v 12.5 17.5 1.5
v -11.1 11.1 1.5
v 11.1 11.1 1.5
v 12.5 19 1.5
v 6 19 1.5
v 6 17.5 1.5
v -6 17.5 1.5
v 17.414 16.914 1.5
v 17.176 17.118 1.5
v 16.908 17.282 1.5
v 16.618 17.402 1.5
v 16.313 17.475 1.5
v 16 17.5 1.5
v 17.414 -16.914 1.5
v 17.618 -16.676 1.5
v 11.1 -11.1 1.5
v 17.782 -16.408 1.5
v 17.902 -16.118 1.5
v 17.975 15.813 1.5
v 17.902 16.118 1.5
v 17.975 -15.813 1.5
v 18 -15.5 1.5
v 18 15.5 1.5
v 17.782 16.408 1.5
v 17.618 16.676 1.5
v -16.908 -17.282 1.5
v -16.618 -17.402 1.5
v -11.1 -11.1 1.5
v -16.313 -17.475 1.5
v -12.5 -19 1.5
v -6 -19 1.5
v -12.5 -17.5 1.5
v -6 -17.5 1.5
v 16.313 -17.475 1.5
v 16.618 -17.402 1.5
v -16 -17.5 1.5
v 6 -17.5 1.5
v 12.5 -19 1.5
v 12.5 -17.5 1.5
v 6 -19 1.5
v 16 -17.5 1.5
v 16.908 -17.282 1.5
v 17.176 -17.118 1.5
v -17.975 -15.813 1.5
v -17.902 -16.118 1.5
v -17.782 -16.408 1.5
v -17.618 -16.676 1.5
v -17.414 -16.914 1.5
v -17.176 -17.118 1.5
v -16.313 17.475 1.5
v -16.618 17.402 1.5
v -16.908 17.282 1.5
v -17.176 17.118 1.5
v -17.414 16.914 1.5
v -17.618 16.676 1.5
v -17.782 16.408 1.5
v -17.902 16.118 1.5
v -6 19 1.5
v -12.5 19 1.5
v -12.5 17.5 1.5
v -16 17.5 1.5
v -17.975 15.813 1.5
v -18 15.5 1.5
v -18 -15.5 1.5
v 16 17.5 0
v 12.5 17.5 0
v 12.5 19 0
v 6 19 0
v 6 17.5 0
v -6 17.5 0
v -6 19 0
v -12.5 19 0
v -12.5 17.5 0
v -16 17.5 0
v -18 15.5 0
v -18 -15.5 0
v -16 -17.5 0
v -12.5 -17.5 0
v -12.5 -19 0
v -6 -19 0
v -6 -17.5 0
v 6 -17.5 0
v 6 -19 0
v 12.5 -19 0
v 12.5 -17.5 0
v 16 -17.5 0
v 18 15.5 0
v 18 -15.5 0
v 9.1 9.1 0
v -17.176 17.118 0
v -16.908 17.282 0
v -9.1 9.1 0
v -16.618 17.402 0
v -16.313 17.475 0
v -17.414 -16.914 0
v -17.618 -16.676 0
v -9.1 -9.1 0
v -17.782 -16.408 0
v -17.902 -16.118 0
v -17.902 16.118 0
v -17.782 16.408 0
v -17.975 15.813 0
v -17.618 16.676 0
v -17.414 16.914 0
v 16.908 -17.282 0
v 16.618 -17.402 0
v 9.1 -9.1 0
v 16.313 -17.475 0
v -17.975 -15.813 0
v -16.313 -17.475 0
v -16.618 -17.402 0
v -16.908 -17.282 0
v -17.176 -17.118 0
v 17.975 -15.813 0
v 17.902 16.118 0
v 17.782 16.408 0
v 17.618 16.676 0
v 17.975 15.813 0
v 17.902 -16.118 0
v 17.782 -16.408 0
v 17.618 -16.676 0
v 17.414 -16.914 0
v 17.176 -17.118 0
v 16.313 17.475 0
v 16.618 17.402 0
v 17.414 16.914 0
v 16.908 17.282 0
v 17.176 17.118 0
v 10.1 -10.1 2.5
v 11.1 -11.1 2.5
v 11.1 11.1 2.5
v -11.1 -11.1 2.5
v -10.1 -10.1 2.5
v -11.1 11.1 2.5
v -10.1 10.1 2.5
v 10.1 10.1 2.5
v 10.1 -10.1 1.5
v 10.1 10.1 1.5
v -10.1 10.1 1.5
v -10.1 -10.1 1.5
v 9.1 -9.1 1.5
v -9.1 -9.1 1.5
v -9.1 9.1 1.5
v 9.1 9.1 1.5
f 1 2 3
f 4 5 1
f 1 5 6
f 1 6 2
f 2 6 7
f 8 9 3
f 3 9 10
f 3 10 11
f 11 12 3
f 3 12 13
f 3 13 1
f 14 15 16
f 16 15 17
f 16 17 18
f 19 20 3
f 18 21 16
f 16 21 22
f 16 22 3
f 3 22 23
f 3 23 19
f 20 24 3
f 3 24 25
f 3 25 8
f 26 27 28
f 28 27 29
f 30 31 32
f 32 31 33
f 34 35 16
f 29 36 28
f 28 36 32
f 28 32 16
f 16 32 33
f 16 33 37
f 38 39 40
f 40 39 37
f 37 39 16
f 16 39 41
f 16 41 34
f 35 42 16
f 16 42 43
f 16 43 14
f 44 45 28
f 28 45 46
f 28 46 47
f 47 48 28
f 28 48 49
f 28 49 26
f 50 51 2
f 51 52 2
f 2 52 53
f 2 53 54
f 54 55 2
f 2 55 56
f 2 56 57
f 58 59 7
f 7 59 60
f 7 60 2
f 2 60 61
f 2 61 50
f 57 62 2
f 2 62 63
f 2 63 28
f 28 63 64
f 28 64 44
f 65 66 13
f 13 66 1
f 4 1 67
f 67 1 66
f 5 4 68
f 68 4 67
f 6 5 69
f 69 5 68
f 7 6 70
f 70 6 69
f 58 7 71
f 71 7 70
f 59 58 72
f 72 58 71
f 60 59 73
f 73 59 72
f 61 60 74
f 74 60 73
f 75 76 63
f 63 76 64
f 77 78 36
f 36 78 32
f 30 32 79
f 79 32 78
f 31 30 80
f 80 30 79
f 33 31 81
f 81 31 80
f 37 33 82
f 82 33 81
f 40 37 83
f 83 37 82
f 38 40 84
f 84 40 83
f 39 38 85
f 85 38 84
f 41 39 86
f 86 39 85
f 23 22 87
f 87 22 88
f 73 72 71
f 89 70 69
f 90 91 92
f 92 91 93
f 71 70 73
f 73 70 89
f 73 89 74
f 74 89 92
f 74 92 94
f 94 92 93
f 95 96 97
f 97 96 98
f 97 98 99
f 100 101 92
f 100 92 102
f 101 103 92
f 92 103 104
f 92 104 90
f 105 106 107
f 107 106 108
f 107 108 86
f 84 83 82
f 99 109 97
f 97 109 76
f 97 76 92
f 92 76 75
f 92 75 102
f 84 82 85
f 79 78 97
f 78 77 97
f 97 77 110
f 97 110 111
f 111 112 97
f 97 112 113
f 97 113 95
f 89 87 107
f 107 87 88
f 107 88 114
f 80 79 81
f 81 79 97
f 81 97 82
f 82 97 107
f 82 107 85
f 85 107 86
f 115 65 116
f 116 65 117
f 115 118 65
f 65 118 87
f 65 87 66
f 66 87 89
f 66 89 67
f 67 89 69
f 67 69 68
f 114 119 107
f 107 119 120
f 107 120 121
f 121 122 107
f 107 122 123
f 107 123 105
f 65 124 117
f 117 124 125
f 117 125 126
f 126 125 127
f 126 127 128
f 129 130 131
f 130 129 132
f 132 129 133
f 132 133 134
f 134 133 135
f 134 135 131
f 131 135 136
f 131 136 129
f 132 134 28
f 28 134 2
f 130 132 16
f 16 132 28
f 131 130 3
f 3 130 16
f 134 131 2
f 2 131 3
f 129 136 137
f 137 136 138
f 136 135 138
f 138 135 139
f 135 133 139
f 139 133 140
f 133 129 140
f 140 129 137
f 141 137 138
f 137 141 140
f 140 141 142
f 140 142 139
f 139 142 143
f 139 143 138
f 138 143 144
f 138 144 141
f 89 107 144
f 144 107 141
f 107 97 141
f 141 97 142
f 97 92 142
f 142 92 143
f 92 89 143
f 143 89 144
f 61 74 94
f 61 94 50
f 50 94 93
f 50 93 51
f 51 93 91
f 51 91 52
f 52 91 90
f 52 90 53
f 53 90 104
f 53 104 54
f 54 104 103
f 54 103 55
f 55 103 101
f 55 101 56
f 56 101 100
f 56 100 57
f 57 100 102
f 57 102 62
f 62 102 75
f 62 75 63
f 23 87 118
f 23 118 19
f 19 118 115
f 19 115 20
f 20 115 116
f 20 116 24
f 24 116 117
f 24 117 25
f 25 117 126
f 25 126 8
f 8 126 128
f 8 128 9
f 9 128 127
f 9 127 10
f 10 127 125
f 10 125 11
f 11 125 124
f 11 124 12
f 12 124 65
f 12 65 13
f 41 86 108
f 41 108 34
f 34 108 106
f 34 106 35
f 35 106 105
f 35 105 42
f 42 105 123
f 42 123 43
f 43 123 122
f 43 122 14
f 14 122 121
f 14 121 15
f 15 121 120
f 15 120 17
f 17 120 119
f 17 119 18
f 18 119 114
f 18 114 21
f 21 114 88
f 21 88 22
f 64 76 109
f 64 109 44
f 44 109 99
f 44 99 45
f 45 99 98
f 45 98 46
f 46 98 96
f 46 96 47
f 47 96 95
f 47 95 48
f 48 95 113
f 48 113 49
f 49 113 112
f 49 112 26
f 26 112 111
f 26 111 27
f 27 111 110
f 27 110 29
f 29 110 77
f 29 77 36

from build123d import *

# Parameters (mm, degrees)
BOSS_EXTRUDE1_DEPTH = 1.5
SKETCH2_W           = 22.2
SKETCH2_H           = 22.2
SKETCH2_W_2         = 20.2
SKETCH2_H_2         = 20.2
BOSS_EXTRUDE2_DEPTH = 1
SKETCH3_W           = 18.2
SKETCH3_H           = 18.2
CUT_EXTRUDE1_DEPTH  = 27.215453458
FILLET1_R           = 2


with BuildPart() as part:
    # Sketch1 → Boss-Extrude1 (new body)
    with BuildSketch(Plane.XY):
        Polygon((-18, -17.5), (-12.5, -17.5), (-12.5, -19), (-6, -19), (-6, -17.5), (6, -17.5), (6, -19), (12.5, -19), (12.5, -17.5), (18, -17.5), (18, 17.5), (12.5, 17.5), (12.5, 19), (6, 19), (6, 17.5), (-6, 17.5), (-6, 19), (-12.5, 19), (-12.5, 17.5), (-18, 17.5), align=None)
    extrude(amount=BOSS_EXTRUDE1_DEPTH)

    # Sketch2 → Boss-Extrude2 (add)
    with BuildSketch(Plane.XY.offset(1.5)):
        Rectangle(SKETCH2_W, SKETCH2_H)
        Rectangle(SKETCH2_W_2, SKETCH2_H_2, mode=Mode.SUBTRACT)
    extrude(amount=BOSS_EXTRUDE2_DEPTH)

    # Sketch3 → Cut-Extrude1 (cut, through all)
    with BuildSketch(Plane.XY.offset(1.5)):
        Rectangle(SKETCH3_W, SKETCH3_H)
    extrude(amount=-CUT_EXTRUDE1_DEPTH, mode=Mode.SUBTRACT)

    # Fillet1
    fillet1_edges = [part.edges().sort_by_distance(p)[0] for p in [
        (18, 17.5, 0.75),
        (18, -17.5, 0.75),
        (-18, -17.5, 0.75),
        (-18, 17.5, 0.75),
    ]]
    fillet(fillet1_edges, radius=FILLET1_R)


solid = part.part
